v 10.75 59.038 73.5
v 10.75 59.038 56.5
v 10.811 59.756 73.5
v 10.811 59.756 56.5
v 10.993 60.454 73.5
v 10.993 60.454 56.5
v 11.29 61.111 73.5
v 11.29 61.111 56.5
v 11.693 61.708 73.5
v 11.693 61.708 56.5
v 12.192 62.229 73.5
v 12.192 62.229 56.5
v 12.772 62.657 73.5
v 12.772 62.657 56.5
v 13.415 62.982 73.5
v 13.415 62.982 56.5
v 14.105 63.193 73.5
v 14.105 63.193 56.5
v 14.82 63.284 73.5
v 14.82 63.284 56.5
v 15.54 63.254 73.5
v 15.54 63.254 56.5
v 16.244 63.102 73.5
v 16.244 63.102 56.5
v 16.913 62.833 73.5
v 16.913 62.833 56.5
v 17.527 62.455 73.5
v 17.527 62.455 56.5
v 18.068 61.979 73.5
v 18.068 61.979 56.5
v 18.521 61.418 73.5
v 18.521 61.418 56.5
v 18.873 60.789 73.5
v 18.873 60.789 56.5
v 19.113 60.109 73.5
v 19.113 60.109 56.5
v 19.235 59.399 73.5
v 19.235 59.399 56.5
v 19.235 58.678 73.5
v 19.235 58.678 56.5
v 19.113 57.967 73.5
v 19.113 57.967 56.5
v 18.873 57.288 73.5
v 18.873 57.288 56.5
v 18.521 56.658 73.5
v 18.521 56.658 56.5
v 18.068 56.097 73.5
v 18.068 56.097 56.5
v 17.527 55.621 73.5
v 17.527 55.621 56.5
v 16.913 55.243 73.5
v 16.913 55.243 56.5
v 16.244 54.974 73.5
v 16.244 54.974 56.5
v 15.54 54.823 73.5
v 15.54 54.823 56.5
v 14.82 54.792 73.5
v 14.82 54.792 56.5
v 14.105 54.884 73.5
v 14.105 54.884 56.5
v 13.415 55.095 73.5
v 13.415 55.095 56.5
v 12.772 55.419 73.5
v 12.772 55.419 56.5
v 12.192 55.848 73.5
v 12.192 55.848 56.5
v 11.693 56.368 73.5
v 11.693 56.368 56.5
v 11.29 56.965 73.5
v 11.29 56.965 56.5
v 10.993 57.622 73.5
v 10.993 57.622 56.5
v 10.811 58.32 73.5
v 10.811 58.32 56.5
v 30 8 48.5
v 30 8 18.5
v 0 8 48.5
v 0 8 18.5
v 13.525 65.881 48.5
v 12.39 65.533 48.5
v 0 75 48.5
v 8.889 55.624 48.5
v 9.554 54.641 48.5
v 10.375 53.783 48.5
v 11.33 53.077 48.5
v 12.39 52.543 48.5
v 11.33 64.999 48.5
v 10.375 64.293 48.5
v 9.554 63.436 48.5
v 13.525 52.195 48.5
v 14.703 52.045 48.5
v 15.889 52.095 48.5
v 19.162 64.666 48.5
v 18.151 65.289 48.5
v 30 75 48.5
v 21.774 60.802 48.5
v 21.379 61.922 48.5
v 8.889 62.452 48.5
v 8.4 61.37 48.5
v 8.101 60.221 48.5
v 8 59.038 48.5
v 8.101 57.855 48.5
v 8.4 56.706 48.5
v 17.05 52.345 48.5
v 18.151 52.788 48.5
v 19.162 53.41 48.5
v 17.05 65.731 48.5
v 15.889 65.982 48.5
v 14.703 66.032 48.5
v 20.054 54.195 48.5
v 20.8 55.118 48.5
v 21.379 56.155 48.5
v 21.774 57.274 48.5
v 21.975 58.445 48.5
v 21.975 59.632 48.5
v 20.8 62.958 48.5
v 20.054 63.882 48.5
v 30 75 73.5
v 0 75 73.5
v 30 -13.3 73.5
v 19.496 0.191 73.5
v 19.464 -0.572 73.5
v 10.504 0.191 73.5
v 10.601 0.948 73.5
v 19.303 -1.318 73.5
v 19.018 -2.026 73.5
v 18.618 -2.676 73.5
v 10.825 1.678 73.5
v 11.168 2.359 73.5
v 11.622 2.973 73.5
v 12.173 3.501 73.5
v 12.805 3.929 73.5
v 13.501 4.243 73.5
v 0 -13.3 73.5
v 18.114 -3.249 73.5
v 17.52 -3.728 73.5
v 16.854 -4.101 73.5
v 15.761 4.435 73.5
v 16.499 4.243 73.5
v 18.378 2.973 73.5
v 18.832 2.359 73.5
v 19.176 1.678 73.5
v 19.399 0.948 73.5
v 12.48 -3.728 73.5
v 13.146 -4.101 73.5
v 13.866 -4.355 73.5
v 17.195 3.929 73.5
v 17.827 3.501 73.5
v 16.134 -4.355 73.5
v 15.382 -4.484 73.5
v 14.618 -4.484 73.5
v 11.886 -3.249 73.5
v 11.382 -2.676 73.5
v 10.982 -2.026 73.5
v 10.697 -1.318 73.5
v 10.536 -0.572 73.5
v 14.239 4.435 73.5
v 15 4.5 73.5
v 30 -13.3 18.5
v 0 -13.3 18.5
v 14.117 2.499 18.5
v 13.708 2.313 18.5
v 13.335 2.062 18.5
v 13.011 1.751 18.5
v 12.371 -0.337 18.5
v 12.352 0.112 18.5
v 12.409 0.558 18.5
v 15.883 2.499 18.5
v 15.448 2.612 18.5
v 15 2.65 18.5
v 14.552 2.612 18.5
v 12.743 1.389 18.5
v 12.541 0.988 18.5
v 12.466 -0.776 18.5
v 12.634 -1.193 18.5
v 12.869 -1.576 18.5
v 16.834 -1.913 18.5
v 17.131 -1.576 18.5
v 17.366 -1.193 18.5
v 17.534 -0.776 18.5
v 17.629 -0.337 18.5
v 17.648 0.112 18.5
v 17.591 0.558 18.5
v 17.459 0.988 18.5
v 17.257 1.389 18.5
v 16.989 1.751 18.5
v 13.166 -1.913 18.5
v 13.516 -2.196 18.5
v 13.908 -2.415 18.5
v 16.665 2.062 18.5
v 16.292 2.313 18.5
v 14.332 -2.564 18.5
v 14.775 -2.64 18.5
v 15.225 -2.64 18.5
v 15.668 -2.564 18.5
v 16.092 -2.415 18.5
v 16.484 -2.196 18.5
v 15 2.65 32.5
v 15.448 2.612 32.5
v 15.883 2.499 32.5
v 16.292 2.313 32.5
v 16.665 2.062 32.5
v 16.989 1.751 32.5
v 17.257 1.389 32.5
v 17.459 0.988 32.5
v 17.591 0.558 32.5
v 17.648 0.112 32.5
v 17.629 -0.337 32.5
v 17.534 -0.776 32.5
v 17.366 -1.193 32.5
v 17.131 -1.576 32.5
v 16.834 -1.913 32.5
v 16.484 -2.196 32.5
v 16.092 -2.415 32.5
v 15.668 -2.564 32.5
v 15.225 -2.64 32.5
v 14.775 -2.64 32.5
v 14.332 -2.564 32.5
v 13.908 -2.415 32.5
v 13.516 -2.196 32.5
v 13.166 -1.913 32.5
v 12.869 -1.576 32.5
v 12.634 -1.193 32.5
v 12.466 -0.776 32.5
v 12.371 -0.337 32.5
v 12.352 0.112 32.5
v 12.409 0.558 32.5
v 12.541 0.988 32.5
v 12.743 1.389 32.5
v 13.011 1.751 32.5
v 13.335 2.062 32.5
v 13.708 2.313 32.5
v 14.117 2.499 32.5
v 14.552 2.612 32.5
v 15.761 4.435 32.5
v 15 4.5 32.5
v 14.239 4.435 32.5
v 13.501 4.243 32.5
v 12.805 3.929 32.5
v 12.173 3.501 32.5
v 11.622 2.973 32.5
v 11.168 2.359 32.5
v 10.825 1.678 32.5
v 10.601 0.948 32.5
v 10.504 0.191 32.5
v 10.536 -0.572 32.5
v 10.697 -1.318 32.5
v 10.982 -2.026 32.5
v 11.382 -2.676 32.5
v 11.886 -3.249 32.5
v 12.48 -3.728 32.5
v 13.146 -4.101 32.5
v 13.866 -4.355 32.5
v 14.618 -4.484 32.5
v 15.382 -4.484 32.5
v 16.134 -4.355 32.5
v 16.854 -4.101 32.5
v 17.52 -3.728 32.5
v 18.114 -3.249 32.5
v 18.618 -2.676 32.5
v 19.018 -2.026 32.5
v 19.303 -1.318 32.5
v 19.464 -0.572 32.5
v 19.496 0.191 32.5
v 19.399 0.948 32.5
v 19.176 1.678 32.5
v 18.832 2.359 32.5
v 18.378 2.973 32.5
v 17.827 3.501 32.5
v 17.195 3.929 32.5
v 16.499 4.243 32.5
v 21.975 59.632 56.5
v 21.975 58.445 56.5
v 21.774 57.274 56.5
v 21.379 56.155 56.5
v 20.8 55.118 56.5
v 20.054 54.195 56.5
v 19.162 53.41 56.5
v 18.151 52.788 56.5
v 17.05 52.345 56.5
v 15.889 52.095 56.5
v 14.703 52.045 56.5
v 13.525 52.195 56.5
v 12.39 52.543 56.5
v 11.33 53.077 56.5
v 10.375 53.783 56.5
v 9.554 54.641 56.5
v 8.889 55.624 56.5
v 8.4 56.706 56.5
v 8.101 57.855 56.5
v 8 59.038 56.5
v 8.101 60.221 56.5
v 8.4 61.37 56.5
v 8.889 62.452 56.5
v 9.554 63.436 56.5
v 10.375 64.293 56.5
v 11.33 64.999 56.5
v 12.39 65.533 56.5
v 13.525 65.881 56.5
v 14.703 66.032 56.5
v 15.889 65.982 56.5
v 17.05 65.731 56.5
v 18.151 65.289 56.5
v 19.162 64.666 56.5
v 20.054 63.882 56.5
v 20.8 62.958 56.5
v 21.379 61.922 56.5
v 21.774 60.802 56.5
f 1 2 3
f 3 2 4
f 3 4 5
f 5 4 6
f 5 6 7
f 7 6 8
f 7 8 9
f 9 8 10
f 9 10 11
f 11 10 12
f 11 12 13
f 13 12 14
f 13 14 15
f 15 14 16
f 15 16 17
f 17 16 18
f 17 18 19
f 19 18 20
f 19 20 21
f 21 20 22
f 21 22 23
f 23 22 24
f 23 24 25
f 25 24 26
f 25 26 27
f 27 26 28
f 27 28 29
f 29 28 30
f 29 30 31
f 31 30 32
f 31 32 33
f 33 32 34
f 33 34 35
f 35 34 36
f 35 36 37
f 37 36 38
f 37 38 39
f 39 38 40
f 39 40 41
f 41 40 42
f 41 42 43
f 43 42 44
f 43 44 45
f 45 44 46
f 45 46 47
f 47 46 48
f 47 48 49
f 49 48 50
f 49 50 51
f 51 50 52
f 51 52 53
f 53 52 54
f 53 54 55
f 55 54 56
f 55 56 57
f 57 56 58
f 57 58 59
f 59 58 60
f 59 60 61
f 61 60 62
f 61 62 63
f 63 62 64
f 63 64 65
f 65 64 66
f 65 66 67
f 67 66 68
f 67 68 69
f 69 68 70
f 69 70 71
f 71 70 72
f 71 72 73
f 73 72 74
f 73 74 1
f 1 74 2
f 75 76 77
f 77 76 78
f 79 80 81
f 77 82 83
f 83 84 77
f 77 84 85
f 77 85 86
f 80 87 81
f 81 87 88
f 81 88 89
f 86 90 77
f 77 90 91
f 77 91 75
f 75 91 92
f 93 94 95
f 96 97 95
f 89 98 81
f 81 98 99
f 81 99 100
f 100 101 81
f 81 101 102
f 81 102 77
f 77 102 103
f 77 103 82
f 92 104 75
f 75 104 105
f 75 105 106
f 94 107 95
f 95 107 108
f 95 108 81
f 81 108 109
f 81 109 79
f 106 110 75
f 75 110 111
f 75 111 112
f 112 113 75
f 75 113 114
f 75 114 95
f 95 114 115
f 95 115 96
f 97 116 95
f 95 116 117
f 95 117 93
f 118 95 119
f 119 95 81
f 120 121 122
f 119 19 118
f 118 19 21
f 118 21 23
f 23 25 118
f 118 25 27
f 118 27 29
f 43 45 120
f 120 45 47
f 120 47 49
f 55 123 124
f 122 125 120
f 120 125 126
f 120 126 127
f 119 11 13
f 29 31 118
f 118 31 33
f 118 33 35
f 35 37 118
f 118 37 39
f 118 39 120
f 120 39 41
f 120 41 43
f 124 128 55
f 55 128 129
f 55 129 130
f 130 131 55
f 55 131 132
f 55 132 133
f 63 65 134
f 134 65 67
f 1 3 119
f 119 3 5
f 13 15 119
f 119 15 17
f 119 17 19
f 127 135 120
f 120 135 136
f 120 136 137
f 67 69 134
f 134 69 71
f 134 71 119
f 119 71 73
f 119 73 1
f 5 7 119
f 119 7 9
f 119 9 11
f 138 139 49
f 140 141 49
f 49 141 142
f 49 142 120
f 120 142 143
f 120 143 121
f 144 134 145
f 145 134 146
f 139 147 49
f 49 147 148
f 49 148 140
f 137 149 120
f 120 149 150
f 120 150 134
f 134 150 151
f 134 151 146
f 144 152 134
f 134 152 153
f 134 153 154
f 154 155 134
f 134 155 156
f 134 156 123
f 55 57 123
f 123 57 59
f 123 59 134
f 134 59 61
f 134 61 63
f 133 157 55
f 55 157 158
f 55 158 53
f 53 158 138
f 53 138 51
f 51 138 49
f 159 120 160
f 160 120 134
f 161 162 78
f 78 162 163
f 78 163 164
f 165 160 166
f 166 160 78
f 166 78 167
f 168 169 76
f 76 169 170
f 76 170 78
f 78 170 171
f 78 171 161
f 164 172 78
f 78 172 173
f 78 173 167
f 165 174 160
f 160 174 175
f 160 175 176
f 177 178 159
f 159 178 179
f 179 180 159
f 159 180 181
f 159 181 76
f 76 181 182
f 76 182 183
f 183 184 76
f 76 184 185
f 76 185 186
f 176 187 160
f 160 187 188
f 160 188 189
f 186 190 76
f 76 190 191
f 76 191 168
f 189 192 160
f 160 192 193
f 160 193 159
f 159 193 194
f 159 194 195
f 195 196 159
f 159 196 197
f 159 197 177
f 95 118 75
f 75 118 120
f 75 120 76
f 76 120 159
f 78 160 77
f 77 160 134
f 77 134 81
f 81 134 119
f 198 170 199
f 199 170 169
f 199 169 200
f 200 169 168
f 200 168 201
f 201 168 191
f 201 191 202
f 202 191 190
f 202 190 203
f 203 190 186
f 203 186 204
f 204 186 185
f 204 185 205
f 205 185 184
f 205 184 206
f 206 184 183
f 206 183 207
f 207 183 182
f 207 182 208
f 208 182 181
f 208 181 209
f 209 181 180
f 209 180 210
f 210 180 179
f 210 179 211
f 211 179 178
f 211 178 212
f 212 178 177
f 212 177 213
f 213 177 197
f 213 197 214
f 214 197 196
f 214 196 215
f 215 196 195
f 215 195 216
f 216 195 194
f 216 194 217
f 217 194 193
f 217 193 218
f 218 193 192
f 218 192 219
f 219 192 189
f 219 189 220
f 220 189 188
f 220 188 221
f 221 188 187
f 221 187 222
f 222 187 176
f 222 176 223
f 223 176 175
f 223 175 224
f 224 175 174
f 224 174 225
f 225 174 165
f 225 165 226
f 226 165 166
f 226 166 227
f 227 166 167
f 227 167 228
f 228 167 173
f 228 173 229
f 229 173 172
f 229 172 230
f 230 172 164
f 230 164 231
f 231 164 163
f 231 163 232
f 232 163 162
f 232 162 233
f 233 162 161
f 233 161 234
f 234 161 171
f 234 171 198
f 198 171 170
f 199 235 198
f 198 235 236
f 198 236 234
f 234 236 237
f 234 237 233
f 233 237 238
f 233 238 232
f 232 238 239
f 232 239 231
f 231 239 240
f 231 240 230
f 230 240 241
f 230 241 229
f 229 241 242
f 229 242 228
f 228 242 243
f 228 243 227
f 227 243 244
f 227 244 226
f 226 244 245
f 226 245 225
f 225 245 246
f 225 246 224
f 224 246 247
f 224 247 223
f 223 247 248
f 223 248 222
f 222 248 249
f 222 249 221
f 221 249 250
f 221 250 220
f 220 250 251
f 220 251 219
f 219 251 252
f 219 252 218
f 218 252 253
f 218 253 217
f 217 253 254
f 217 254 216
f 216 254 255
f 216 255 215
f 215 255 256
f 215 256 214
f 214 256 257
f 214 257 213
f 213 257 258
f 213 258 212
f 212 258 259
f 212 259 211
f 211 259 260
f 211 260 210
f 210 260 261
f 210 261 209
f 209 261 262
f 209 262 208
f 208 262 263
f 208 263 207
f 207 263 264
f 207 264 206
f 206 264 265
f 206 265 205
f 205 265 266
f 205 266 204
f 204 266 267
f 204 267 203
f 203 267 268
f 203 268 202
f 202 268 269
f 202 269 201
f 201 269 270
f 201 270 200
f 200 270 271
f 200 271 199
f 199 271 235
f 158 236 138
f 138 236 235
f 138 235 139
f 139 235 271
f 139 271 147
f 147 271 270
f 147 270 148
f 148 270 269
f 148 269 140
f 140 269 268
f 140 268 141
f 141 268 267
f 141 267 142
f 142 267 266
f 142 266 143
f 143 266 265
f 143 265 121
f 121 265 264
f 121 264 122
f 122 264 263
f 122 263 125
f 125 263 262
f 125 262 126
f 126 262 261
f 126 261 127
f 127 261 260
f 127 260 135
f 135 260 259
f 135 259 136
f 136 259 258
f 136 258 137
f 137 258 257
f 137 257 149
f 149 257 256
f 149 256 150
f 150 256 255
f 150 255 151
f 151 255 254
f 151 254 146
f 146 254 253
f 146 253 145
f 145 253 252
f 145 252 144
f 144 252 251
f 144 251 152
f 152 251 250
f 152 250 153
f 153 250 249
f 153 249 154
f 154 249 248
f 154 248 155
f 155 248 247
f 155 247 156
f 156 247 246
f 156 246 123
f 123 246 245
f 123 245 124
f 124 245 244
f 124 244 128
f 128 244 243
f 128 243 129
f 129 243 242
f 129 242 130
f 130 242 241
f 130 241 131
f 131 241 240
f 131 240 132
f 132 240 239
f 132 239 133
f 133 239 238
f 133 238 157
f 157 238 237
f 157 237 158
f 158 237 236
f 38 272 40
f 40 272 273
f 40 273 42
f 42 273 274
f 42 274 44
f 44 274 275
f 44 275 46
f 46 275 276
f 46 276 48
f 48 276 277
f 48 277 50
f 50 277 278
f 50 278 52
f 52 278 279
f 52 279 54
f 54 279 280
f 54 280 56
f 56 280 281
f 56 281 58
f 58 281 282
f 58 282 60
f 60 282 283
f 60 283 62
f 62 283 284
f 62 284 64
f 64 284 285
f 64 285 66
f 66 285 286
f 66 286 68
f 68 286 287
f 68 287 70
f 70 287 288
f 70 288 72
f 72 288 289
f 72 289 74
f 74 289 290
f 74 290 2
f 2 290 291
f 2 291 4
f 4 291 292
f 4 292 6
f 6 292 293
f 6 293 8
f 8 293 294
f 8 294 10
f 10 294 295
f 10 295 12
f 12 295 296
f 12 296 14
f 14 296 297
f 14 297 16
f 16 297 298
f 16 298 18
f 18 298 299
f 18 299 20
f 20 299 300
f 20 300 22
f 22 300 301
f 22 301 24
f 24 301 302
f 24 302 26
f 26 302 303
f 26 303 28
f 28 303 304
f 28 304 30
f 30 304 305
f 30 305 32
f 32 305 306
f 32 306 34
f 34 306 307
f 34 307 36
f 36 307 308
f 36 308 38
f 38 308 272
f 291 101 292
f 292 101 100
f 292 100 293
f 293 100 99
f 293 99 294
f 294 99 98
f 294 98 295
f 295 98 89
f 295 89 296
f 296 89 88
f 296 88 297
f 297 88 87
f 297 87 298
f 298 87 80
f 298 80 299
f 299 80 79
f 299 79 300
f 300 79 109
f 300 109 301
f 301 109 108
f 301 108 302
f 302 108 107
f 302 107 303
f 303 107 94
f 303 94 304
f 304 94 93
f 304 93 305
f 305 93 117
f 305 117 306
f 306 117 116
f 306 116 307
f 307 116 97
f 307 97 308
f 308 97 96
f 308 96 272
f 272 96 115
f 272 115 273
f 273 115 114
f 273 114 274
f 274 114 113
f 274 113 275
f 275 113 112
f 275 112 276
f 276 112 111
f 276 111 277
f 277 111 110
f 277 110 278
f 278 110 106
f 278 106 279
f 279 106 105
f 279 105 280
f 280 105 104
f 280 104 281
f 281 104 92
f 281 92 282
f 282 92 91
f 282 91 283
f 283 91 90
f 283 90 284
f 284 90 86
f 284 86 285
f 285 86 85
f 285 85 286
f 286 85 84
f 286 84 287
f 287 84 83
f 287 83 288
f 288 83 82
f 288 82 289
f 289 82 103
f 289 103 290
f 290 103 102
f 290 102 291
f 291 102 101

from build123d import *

# Parameters (mm, degrees)
EXTRUDE_1_DEPTH     = 30
SKETCH_2_R          = 2.65
CUT_EXTRUDE_1_DEPTH = 56
SKETCH_4_R          = 4.5
CUT_EXTRUDE_3_DEPTH = 42
SKETCH_5_R          = 4.25
CUT_EXTRUDE_4_DEPTH = 26
SKETCH_6_R          = 7
CUT_EXTRUDE_5_DEPTH = 8


with BuildPart() as part:
    # 草图1 → 凸台-拉伸1 (new body)
    with BuildSketch(Plane(origin=(0, 0, 0), x_dir=(0, 0, -1), z_dir=(1, 0, 0))):
        Polygon((-18.5, 8), (-18.5, -13.3), (-73.5, -13.3), (-73.5, 8), (-73.5, 75), (-48.5, 75), (-48.5, 8), align=None)
    extrude(amount=EXTRUDE_1_DEPTH)

    # 草图2 → 切除-拉伸1 (cut, through all)
    with BuildSketch(Plane(origin=(0, 0, 18.5), x_dir=(-1, 0, 0), z_dir=(0, 0, -1))):
        with Locations((-15, 0)):
            Circle(SKETCH_2_R)
    extrude(amount=-CUT_EXTRUDE_1_DEPTH, mode=Mode.SUBTRACT)

    # 草图4 → 切除-拉伸3 (cut, through all)
    with BuildSketch(Plane(origin=(0, 0, 32.5), x_dir=(-1, 0, 0), z_dir=(0, 0, -1))):
        with Locations((-15, 0)):
            Circle(SKETCH_4_R)
    extrude(amount=-CUT_EXTRUDE_3_DEPTH, mode=Mode.SUBTRACT)

    # 草图5 → 切除-拉伸4 (cut, through all)
    with BuildSketch(Plane(origin=(0, 0, 48.5), x_dir=(-1, 0, 0), z_dir=(0, 0, -1))):
        with Locations((-15, 59.038200963)):
            Circle(SKETCH_5_R)
    extrude(amount=-CUT_EXTRUDE_4_DEPTH, mode=Mode.SUBTRACT)

    # 草图6 → 切除-拉伸5 (cut)
    with BuildSketch(Plane(origin=(0, 0, 48.5), x_dir=(-1, 0, 0), z_dir=(0, 0, -1))):
        with Locations((-15, 59.038200963)):
            Circle(SKETCH_6_R)
    extrude(amount=-CUT_EXTRUDE_5_DEPTH, mode=Mode.SUBTRACT)


solid = part.part
